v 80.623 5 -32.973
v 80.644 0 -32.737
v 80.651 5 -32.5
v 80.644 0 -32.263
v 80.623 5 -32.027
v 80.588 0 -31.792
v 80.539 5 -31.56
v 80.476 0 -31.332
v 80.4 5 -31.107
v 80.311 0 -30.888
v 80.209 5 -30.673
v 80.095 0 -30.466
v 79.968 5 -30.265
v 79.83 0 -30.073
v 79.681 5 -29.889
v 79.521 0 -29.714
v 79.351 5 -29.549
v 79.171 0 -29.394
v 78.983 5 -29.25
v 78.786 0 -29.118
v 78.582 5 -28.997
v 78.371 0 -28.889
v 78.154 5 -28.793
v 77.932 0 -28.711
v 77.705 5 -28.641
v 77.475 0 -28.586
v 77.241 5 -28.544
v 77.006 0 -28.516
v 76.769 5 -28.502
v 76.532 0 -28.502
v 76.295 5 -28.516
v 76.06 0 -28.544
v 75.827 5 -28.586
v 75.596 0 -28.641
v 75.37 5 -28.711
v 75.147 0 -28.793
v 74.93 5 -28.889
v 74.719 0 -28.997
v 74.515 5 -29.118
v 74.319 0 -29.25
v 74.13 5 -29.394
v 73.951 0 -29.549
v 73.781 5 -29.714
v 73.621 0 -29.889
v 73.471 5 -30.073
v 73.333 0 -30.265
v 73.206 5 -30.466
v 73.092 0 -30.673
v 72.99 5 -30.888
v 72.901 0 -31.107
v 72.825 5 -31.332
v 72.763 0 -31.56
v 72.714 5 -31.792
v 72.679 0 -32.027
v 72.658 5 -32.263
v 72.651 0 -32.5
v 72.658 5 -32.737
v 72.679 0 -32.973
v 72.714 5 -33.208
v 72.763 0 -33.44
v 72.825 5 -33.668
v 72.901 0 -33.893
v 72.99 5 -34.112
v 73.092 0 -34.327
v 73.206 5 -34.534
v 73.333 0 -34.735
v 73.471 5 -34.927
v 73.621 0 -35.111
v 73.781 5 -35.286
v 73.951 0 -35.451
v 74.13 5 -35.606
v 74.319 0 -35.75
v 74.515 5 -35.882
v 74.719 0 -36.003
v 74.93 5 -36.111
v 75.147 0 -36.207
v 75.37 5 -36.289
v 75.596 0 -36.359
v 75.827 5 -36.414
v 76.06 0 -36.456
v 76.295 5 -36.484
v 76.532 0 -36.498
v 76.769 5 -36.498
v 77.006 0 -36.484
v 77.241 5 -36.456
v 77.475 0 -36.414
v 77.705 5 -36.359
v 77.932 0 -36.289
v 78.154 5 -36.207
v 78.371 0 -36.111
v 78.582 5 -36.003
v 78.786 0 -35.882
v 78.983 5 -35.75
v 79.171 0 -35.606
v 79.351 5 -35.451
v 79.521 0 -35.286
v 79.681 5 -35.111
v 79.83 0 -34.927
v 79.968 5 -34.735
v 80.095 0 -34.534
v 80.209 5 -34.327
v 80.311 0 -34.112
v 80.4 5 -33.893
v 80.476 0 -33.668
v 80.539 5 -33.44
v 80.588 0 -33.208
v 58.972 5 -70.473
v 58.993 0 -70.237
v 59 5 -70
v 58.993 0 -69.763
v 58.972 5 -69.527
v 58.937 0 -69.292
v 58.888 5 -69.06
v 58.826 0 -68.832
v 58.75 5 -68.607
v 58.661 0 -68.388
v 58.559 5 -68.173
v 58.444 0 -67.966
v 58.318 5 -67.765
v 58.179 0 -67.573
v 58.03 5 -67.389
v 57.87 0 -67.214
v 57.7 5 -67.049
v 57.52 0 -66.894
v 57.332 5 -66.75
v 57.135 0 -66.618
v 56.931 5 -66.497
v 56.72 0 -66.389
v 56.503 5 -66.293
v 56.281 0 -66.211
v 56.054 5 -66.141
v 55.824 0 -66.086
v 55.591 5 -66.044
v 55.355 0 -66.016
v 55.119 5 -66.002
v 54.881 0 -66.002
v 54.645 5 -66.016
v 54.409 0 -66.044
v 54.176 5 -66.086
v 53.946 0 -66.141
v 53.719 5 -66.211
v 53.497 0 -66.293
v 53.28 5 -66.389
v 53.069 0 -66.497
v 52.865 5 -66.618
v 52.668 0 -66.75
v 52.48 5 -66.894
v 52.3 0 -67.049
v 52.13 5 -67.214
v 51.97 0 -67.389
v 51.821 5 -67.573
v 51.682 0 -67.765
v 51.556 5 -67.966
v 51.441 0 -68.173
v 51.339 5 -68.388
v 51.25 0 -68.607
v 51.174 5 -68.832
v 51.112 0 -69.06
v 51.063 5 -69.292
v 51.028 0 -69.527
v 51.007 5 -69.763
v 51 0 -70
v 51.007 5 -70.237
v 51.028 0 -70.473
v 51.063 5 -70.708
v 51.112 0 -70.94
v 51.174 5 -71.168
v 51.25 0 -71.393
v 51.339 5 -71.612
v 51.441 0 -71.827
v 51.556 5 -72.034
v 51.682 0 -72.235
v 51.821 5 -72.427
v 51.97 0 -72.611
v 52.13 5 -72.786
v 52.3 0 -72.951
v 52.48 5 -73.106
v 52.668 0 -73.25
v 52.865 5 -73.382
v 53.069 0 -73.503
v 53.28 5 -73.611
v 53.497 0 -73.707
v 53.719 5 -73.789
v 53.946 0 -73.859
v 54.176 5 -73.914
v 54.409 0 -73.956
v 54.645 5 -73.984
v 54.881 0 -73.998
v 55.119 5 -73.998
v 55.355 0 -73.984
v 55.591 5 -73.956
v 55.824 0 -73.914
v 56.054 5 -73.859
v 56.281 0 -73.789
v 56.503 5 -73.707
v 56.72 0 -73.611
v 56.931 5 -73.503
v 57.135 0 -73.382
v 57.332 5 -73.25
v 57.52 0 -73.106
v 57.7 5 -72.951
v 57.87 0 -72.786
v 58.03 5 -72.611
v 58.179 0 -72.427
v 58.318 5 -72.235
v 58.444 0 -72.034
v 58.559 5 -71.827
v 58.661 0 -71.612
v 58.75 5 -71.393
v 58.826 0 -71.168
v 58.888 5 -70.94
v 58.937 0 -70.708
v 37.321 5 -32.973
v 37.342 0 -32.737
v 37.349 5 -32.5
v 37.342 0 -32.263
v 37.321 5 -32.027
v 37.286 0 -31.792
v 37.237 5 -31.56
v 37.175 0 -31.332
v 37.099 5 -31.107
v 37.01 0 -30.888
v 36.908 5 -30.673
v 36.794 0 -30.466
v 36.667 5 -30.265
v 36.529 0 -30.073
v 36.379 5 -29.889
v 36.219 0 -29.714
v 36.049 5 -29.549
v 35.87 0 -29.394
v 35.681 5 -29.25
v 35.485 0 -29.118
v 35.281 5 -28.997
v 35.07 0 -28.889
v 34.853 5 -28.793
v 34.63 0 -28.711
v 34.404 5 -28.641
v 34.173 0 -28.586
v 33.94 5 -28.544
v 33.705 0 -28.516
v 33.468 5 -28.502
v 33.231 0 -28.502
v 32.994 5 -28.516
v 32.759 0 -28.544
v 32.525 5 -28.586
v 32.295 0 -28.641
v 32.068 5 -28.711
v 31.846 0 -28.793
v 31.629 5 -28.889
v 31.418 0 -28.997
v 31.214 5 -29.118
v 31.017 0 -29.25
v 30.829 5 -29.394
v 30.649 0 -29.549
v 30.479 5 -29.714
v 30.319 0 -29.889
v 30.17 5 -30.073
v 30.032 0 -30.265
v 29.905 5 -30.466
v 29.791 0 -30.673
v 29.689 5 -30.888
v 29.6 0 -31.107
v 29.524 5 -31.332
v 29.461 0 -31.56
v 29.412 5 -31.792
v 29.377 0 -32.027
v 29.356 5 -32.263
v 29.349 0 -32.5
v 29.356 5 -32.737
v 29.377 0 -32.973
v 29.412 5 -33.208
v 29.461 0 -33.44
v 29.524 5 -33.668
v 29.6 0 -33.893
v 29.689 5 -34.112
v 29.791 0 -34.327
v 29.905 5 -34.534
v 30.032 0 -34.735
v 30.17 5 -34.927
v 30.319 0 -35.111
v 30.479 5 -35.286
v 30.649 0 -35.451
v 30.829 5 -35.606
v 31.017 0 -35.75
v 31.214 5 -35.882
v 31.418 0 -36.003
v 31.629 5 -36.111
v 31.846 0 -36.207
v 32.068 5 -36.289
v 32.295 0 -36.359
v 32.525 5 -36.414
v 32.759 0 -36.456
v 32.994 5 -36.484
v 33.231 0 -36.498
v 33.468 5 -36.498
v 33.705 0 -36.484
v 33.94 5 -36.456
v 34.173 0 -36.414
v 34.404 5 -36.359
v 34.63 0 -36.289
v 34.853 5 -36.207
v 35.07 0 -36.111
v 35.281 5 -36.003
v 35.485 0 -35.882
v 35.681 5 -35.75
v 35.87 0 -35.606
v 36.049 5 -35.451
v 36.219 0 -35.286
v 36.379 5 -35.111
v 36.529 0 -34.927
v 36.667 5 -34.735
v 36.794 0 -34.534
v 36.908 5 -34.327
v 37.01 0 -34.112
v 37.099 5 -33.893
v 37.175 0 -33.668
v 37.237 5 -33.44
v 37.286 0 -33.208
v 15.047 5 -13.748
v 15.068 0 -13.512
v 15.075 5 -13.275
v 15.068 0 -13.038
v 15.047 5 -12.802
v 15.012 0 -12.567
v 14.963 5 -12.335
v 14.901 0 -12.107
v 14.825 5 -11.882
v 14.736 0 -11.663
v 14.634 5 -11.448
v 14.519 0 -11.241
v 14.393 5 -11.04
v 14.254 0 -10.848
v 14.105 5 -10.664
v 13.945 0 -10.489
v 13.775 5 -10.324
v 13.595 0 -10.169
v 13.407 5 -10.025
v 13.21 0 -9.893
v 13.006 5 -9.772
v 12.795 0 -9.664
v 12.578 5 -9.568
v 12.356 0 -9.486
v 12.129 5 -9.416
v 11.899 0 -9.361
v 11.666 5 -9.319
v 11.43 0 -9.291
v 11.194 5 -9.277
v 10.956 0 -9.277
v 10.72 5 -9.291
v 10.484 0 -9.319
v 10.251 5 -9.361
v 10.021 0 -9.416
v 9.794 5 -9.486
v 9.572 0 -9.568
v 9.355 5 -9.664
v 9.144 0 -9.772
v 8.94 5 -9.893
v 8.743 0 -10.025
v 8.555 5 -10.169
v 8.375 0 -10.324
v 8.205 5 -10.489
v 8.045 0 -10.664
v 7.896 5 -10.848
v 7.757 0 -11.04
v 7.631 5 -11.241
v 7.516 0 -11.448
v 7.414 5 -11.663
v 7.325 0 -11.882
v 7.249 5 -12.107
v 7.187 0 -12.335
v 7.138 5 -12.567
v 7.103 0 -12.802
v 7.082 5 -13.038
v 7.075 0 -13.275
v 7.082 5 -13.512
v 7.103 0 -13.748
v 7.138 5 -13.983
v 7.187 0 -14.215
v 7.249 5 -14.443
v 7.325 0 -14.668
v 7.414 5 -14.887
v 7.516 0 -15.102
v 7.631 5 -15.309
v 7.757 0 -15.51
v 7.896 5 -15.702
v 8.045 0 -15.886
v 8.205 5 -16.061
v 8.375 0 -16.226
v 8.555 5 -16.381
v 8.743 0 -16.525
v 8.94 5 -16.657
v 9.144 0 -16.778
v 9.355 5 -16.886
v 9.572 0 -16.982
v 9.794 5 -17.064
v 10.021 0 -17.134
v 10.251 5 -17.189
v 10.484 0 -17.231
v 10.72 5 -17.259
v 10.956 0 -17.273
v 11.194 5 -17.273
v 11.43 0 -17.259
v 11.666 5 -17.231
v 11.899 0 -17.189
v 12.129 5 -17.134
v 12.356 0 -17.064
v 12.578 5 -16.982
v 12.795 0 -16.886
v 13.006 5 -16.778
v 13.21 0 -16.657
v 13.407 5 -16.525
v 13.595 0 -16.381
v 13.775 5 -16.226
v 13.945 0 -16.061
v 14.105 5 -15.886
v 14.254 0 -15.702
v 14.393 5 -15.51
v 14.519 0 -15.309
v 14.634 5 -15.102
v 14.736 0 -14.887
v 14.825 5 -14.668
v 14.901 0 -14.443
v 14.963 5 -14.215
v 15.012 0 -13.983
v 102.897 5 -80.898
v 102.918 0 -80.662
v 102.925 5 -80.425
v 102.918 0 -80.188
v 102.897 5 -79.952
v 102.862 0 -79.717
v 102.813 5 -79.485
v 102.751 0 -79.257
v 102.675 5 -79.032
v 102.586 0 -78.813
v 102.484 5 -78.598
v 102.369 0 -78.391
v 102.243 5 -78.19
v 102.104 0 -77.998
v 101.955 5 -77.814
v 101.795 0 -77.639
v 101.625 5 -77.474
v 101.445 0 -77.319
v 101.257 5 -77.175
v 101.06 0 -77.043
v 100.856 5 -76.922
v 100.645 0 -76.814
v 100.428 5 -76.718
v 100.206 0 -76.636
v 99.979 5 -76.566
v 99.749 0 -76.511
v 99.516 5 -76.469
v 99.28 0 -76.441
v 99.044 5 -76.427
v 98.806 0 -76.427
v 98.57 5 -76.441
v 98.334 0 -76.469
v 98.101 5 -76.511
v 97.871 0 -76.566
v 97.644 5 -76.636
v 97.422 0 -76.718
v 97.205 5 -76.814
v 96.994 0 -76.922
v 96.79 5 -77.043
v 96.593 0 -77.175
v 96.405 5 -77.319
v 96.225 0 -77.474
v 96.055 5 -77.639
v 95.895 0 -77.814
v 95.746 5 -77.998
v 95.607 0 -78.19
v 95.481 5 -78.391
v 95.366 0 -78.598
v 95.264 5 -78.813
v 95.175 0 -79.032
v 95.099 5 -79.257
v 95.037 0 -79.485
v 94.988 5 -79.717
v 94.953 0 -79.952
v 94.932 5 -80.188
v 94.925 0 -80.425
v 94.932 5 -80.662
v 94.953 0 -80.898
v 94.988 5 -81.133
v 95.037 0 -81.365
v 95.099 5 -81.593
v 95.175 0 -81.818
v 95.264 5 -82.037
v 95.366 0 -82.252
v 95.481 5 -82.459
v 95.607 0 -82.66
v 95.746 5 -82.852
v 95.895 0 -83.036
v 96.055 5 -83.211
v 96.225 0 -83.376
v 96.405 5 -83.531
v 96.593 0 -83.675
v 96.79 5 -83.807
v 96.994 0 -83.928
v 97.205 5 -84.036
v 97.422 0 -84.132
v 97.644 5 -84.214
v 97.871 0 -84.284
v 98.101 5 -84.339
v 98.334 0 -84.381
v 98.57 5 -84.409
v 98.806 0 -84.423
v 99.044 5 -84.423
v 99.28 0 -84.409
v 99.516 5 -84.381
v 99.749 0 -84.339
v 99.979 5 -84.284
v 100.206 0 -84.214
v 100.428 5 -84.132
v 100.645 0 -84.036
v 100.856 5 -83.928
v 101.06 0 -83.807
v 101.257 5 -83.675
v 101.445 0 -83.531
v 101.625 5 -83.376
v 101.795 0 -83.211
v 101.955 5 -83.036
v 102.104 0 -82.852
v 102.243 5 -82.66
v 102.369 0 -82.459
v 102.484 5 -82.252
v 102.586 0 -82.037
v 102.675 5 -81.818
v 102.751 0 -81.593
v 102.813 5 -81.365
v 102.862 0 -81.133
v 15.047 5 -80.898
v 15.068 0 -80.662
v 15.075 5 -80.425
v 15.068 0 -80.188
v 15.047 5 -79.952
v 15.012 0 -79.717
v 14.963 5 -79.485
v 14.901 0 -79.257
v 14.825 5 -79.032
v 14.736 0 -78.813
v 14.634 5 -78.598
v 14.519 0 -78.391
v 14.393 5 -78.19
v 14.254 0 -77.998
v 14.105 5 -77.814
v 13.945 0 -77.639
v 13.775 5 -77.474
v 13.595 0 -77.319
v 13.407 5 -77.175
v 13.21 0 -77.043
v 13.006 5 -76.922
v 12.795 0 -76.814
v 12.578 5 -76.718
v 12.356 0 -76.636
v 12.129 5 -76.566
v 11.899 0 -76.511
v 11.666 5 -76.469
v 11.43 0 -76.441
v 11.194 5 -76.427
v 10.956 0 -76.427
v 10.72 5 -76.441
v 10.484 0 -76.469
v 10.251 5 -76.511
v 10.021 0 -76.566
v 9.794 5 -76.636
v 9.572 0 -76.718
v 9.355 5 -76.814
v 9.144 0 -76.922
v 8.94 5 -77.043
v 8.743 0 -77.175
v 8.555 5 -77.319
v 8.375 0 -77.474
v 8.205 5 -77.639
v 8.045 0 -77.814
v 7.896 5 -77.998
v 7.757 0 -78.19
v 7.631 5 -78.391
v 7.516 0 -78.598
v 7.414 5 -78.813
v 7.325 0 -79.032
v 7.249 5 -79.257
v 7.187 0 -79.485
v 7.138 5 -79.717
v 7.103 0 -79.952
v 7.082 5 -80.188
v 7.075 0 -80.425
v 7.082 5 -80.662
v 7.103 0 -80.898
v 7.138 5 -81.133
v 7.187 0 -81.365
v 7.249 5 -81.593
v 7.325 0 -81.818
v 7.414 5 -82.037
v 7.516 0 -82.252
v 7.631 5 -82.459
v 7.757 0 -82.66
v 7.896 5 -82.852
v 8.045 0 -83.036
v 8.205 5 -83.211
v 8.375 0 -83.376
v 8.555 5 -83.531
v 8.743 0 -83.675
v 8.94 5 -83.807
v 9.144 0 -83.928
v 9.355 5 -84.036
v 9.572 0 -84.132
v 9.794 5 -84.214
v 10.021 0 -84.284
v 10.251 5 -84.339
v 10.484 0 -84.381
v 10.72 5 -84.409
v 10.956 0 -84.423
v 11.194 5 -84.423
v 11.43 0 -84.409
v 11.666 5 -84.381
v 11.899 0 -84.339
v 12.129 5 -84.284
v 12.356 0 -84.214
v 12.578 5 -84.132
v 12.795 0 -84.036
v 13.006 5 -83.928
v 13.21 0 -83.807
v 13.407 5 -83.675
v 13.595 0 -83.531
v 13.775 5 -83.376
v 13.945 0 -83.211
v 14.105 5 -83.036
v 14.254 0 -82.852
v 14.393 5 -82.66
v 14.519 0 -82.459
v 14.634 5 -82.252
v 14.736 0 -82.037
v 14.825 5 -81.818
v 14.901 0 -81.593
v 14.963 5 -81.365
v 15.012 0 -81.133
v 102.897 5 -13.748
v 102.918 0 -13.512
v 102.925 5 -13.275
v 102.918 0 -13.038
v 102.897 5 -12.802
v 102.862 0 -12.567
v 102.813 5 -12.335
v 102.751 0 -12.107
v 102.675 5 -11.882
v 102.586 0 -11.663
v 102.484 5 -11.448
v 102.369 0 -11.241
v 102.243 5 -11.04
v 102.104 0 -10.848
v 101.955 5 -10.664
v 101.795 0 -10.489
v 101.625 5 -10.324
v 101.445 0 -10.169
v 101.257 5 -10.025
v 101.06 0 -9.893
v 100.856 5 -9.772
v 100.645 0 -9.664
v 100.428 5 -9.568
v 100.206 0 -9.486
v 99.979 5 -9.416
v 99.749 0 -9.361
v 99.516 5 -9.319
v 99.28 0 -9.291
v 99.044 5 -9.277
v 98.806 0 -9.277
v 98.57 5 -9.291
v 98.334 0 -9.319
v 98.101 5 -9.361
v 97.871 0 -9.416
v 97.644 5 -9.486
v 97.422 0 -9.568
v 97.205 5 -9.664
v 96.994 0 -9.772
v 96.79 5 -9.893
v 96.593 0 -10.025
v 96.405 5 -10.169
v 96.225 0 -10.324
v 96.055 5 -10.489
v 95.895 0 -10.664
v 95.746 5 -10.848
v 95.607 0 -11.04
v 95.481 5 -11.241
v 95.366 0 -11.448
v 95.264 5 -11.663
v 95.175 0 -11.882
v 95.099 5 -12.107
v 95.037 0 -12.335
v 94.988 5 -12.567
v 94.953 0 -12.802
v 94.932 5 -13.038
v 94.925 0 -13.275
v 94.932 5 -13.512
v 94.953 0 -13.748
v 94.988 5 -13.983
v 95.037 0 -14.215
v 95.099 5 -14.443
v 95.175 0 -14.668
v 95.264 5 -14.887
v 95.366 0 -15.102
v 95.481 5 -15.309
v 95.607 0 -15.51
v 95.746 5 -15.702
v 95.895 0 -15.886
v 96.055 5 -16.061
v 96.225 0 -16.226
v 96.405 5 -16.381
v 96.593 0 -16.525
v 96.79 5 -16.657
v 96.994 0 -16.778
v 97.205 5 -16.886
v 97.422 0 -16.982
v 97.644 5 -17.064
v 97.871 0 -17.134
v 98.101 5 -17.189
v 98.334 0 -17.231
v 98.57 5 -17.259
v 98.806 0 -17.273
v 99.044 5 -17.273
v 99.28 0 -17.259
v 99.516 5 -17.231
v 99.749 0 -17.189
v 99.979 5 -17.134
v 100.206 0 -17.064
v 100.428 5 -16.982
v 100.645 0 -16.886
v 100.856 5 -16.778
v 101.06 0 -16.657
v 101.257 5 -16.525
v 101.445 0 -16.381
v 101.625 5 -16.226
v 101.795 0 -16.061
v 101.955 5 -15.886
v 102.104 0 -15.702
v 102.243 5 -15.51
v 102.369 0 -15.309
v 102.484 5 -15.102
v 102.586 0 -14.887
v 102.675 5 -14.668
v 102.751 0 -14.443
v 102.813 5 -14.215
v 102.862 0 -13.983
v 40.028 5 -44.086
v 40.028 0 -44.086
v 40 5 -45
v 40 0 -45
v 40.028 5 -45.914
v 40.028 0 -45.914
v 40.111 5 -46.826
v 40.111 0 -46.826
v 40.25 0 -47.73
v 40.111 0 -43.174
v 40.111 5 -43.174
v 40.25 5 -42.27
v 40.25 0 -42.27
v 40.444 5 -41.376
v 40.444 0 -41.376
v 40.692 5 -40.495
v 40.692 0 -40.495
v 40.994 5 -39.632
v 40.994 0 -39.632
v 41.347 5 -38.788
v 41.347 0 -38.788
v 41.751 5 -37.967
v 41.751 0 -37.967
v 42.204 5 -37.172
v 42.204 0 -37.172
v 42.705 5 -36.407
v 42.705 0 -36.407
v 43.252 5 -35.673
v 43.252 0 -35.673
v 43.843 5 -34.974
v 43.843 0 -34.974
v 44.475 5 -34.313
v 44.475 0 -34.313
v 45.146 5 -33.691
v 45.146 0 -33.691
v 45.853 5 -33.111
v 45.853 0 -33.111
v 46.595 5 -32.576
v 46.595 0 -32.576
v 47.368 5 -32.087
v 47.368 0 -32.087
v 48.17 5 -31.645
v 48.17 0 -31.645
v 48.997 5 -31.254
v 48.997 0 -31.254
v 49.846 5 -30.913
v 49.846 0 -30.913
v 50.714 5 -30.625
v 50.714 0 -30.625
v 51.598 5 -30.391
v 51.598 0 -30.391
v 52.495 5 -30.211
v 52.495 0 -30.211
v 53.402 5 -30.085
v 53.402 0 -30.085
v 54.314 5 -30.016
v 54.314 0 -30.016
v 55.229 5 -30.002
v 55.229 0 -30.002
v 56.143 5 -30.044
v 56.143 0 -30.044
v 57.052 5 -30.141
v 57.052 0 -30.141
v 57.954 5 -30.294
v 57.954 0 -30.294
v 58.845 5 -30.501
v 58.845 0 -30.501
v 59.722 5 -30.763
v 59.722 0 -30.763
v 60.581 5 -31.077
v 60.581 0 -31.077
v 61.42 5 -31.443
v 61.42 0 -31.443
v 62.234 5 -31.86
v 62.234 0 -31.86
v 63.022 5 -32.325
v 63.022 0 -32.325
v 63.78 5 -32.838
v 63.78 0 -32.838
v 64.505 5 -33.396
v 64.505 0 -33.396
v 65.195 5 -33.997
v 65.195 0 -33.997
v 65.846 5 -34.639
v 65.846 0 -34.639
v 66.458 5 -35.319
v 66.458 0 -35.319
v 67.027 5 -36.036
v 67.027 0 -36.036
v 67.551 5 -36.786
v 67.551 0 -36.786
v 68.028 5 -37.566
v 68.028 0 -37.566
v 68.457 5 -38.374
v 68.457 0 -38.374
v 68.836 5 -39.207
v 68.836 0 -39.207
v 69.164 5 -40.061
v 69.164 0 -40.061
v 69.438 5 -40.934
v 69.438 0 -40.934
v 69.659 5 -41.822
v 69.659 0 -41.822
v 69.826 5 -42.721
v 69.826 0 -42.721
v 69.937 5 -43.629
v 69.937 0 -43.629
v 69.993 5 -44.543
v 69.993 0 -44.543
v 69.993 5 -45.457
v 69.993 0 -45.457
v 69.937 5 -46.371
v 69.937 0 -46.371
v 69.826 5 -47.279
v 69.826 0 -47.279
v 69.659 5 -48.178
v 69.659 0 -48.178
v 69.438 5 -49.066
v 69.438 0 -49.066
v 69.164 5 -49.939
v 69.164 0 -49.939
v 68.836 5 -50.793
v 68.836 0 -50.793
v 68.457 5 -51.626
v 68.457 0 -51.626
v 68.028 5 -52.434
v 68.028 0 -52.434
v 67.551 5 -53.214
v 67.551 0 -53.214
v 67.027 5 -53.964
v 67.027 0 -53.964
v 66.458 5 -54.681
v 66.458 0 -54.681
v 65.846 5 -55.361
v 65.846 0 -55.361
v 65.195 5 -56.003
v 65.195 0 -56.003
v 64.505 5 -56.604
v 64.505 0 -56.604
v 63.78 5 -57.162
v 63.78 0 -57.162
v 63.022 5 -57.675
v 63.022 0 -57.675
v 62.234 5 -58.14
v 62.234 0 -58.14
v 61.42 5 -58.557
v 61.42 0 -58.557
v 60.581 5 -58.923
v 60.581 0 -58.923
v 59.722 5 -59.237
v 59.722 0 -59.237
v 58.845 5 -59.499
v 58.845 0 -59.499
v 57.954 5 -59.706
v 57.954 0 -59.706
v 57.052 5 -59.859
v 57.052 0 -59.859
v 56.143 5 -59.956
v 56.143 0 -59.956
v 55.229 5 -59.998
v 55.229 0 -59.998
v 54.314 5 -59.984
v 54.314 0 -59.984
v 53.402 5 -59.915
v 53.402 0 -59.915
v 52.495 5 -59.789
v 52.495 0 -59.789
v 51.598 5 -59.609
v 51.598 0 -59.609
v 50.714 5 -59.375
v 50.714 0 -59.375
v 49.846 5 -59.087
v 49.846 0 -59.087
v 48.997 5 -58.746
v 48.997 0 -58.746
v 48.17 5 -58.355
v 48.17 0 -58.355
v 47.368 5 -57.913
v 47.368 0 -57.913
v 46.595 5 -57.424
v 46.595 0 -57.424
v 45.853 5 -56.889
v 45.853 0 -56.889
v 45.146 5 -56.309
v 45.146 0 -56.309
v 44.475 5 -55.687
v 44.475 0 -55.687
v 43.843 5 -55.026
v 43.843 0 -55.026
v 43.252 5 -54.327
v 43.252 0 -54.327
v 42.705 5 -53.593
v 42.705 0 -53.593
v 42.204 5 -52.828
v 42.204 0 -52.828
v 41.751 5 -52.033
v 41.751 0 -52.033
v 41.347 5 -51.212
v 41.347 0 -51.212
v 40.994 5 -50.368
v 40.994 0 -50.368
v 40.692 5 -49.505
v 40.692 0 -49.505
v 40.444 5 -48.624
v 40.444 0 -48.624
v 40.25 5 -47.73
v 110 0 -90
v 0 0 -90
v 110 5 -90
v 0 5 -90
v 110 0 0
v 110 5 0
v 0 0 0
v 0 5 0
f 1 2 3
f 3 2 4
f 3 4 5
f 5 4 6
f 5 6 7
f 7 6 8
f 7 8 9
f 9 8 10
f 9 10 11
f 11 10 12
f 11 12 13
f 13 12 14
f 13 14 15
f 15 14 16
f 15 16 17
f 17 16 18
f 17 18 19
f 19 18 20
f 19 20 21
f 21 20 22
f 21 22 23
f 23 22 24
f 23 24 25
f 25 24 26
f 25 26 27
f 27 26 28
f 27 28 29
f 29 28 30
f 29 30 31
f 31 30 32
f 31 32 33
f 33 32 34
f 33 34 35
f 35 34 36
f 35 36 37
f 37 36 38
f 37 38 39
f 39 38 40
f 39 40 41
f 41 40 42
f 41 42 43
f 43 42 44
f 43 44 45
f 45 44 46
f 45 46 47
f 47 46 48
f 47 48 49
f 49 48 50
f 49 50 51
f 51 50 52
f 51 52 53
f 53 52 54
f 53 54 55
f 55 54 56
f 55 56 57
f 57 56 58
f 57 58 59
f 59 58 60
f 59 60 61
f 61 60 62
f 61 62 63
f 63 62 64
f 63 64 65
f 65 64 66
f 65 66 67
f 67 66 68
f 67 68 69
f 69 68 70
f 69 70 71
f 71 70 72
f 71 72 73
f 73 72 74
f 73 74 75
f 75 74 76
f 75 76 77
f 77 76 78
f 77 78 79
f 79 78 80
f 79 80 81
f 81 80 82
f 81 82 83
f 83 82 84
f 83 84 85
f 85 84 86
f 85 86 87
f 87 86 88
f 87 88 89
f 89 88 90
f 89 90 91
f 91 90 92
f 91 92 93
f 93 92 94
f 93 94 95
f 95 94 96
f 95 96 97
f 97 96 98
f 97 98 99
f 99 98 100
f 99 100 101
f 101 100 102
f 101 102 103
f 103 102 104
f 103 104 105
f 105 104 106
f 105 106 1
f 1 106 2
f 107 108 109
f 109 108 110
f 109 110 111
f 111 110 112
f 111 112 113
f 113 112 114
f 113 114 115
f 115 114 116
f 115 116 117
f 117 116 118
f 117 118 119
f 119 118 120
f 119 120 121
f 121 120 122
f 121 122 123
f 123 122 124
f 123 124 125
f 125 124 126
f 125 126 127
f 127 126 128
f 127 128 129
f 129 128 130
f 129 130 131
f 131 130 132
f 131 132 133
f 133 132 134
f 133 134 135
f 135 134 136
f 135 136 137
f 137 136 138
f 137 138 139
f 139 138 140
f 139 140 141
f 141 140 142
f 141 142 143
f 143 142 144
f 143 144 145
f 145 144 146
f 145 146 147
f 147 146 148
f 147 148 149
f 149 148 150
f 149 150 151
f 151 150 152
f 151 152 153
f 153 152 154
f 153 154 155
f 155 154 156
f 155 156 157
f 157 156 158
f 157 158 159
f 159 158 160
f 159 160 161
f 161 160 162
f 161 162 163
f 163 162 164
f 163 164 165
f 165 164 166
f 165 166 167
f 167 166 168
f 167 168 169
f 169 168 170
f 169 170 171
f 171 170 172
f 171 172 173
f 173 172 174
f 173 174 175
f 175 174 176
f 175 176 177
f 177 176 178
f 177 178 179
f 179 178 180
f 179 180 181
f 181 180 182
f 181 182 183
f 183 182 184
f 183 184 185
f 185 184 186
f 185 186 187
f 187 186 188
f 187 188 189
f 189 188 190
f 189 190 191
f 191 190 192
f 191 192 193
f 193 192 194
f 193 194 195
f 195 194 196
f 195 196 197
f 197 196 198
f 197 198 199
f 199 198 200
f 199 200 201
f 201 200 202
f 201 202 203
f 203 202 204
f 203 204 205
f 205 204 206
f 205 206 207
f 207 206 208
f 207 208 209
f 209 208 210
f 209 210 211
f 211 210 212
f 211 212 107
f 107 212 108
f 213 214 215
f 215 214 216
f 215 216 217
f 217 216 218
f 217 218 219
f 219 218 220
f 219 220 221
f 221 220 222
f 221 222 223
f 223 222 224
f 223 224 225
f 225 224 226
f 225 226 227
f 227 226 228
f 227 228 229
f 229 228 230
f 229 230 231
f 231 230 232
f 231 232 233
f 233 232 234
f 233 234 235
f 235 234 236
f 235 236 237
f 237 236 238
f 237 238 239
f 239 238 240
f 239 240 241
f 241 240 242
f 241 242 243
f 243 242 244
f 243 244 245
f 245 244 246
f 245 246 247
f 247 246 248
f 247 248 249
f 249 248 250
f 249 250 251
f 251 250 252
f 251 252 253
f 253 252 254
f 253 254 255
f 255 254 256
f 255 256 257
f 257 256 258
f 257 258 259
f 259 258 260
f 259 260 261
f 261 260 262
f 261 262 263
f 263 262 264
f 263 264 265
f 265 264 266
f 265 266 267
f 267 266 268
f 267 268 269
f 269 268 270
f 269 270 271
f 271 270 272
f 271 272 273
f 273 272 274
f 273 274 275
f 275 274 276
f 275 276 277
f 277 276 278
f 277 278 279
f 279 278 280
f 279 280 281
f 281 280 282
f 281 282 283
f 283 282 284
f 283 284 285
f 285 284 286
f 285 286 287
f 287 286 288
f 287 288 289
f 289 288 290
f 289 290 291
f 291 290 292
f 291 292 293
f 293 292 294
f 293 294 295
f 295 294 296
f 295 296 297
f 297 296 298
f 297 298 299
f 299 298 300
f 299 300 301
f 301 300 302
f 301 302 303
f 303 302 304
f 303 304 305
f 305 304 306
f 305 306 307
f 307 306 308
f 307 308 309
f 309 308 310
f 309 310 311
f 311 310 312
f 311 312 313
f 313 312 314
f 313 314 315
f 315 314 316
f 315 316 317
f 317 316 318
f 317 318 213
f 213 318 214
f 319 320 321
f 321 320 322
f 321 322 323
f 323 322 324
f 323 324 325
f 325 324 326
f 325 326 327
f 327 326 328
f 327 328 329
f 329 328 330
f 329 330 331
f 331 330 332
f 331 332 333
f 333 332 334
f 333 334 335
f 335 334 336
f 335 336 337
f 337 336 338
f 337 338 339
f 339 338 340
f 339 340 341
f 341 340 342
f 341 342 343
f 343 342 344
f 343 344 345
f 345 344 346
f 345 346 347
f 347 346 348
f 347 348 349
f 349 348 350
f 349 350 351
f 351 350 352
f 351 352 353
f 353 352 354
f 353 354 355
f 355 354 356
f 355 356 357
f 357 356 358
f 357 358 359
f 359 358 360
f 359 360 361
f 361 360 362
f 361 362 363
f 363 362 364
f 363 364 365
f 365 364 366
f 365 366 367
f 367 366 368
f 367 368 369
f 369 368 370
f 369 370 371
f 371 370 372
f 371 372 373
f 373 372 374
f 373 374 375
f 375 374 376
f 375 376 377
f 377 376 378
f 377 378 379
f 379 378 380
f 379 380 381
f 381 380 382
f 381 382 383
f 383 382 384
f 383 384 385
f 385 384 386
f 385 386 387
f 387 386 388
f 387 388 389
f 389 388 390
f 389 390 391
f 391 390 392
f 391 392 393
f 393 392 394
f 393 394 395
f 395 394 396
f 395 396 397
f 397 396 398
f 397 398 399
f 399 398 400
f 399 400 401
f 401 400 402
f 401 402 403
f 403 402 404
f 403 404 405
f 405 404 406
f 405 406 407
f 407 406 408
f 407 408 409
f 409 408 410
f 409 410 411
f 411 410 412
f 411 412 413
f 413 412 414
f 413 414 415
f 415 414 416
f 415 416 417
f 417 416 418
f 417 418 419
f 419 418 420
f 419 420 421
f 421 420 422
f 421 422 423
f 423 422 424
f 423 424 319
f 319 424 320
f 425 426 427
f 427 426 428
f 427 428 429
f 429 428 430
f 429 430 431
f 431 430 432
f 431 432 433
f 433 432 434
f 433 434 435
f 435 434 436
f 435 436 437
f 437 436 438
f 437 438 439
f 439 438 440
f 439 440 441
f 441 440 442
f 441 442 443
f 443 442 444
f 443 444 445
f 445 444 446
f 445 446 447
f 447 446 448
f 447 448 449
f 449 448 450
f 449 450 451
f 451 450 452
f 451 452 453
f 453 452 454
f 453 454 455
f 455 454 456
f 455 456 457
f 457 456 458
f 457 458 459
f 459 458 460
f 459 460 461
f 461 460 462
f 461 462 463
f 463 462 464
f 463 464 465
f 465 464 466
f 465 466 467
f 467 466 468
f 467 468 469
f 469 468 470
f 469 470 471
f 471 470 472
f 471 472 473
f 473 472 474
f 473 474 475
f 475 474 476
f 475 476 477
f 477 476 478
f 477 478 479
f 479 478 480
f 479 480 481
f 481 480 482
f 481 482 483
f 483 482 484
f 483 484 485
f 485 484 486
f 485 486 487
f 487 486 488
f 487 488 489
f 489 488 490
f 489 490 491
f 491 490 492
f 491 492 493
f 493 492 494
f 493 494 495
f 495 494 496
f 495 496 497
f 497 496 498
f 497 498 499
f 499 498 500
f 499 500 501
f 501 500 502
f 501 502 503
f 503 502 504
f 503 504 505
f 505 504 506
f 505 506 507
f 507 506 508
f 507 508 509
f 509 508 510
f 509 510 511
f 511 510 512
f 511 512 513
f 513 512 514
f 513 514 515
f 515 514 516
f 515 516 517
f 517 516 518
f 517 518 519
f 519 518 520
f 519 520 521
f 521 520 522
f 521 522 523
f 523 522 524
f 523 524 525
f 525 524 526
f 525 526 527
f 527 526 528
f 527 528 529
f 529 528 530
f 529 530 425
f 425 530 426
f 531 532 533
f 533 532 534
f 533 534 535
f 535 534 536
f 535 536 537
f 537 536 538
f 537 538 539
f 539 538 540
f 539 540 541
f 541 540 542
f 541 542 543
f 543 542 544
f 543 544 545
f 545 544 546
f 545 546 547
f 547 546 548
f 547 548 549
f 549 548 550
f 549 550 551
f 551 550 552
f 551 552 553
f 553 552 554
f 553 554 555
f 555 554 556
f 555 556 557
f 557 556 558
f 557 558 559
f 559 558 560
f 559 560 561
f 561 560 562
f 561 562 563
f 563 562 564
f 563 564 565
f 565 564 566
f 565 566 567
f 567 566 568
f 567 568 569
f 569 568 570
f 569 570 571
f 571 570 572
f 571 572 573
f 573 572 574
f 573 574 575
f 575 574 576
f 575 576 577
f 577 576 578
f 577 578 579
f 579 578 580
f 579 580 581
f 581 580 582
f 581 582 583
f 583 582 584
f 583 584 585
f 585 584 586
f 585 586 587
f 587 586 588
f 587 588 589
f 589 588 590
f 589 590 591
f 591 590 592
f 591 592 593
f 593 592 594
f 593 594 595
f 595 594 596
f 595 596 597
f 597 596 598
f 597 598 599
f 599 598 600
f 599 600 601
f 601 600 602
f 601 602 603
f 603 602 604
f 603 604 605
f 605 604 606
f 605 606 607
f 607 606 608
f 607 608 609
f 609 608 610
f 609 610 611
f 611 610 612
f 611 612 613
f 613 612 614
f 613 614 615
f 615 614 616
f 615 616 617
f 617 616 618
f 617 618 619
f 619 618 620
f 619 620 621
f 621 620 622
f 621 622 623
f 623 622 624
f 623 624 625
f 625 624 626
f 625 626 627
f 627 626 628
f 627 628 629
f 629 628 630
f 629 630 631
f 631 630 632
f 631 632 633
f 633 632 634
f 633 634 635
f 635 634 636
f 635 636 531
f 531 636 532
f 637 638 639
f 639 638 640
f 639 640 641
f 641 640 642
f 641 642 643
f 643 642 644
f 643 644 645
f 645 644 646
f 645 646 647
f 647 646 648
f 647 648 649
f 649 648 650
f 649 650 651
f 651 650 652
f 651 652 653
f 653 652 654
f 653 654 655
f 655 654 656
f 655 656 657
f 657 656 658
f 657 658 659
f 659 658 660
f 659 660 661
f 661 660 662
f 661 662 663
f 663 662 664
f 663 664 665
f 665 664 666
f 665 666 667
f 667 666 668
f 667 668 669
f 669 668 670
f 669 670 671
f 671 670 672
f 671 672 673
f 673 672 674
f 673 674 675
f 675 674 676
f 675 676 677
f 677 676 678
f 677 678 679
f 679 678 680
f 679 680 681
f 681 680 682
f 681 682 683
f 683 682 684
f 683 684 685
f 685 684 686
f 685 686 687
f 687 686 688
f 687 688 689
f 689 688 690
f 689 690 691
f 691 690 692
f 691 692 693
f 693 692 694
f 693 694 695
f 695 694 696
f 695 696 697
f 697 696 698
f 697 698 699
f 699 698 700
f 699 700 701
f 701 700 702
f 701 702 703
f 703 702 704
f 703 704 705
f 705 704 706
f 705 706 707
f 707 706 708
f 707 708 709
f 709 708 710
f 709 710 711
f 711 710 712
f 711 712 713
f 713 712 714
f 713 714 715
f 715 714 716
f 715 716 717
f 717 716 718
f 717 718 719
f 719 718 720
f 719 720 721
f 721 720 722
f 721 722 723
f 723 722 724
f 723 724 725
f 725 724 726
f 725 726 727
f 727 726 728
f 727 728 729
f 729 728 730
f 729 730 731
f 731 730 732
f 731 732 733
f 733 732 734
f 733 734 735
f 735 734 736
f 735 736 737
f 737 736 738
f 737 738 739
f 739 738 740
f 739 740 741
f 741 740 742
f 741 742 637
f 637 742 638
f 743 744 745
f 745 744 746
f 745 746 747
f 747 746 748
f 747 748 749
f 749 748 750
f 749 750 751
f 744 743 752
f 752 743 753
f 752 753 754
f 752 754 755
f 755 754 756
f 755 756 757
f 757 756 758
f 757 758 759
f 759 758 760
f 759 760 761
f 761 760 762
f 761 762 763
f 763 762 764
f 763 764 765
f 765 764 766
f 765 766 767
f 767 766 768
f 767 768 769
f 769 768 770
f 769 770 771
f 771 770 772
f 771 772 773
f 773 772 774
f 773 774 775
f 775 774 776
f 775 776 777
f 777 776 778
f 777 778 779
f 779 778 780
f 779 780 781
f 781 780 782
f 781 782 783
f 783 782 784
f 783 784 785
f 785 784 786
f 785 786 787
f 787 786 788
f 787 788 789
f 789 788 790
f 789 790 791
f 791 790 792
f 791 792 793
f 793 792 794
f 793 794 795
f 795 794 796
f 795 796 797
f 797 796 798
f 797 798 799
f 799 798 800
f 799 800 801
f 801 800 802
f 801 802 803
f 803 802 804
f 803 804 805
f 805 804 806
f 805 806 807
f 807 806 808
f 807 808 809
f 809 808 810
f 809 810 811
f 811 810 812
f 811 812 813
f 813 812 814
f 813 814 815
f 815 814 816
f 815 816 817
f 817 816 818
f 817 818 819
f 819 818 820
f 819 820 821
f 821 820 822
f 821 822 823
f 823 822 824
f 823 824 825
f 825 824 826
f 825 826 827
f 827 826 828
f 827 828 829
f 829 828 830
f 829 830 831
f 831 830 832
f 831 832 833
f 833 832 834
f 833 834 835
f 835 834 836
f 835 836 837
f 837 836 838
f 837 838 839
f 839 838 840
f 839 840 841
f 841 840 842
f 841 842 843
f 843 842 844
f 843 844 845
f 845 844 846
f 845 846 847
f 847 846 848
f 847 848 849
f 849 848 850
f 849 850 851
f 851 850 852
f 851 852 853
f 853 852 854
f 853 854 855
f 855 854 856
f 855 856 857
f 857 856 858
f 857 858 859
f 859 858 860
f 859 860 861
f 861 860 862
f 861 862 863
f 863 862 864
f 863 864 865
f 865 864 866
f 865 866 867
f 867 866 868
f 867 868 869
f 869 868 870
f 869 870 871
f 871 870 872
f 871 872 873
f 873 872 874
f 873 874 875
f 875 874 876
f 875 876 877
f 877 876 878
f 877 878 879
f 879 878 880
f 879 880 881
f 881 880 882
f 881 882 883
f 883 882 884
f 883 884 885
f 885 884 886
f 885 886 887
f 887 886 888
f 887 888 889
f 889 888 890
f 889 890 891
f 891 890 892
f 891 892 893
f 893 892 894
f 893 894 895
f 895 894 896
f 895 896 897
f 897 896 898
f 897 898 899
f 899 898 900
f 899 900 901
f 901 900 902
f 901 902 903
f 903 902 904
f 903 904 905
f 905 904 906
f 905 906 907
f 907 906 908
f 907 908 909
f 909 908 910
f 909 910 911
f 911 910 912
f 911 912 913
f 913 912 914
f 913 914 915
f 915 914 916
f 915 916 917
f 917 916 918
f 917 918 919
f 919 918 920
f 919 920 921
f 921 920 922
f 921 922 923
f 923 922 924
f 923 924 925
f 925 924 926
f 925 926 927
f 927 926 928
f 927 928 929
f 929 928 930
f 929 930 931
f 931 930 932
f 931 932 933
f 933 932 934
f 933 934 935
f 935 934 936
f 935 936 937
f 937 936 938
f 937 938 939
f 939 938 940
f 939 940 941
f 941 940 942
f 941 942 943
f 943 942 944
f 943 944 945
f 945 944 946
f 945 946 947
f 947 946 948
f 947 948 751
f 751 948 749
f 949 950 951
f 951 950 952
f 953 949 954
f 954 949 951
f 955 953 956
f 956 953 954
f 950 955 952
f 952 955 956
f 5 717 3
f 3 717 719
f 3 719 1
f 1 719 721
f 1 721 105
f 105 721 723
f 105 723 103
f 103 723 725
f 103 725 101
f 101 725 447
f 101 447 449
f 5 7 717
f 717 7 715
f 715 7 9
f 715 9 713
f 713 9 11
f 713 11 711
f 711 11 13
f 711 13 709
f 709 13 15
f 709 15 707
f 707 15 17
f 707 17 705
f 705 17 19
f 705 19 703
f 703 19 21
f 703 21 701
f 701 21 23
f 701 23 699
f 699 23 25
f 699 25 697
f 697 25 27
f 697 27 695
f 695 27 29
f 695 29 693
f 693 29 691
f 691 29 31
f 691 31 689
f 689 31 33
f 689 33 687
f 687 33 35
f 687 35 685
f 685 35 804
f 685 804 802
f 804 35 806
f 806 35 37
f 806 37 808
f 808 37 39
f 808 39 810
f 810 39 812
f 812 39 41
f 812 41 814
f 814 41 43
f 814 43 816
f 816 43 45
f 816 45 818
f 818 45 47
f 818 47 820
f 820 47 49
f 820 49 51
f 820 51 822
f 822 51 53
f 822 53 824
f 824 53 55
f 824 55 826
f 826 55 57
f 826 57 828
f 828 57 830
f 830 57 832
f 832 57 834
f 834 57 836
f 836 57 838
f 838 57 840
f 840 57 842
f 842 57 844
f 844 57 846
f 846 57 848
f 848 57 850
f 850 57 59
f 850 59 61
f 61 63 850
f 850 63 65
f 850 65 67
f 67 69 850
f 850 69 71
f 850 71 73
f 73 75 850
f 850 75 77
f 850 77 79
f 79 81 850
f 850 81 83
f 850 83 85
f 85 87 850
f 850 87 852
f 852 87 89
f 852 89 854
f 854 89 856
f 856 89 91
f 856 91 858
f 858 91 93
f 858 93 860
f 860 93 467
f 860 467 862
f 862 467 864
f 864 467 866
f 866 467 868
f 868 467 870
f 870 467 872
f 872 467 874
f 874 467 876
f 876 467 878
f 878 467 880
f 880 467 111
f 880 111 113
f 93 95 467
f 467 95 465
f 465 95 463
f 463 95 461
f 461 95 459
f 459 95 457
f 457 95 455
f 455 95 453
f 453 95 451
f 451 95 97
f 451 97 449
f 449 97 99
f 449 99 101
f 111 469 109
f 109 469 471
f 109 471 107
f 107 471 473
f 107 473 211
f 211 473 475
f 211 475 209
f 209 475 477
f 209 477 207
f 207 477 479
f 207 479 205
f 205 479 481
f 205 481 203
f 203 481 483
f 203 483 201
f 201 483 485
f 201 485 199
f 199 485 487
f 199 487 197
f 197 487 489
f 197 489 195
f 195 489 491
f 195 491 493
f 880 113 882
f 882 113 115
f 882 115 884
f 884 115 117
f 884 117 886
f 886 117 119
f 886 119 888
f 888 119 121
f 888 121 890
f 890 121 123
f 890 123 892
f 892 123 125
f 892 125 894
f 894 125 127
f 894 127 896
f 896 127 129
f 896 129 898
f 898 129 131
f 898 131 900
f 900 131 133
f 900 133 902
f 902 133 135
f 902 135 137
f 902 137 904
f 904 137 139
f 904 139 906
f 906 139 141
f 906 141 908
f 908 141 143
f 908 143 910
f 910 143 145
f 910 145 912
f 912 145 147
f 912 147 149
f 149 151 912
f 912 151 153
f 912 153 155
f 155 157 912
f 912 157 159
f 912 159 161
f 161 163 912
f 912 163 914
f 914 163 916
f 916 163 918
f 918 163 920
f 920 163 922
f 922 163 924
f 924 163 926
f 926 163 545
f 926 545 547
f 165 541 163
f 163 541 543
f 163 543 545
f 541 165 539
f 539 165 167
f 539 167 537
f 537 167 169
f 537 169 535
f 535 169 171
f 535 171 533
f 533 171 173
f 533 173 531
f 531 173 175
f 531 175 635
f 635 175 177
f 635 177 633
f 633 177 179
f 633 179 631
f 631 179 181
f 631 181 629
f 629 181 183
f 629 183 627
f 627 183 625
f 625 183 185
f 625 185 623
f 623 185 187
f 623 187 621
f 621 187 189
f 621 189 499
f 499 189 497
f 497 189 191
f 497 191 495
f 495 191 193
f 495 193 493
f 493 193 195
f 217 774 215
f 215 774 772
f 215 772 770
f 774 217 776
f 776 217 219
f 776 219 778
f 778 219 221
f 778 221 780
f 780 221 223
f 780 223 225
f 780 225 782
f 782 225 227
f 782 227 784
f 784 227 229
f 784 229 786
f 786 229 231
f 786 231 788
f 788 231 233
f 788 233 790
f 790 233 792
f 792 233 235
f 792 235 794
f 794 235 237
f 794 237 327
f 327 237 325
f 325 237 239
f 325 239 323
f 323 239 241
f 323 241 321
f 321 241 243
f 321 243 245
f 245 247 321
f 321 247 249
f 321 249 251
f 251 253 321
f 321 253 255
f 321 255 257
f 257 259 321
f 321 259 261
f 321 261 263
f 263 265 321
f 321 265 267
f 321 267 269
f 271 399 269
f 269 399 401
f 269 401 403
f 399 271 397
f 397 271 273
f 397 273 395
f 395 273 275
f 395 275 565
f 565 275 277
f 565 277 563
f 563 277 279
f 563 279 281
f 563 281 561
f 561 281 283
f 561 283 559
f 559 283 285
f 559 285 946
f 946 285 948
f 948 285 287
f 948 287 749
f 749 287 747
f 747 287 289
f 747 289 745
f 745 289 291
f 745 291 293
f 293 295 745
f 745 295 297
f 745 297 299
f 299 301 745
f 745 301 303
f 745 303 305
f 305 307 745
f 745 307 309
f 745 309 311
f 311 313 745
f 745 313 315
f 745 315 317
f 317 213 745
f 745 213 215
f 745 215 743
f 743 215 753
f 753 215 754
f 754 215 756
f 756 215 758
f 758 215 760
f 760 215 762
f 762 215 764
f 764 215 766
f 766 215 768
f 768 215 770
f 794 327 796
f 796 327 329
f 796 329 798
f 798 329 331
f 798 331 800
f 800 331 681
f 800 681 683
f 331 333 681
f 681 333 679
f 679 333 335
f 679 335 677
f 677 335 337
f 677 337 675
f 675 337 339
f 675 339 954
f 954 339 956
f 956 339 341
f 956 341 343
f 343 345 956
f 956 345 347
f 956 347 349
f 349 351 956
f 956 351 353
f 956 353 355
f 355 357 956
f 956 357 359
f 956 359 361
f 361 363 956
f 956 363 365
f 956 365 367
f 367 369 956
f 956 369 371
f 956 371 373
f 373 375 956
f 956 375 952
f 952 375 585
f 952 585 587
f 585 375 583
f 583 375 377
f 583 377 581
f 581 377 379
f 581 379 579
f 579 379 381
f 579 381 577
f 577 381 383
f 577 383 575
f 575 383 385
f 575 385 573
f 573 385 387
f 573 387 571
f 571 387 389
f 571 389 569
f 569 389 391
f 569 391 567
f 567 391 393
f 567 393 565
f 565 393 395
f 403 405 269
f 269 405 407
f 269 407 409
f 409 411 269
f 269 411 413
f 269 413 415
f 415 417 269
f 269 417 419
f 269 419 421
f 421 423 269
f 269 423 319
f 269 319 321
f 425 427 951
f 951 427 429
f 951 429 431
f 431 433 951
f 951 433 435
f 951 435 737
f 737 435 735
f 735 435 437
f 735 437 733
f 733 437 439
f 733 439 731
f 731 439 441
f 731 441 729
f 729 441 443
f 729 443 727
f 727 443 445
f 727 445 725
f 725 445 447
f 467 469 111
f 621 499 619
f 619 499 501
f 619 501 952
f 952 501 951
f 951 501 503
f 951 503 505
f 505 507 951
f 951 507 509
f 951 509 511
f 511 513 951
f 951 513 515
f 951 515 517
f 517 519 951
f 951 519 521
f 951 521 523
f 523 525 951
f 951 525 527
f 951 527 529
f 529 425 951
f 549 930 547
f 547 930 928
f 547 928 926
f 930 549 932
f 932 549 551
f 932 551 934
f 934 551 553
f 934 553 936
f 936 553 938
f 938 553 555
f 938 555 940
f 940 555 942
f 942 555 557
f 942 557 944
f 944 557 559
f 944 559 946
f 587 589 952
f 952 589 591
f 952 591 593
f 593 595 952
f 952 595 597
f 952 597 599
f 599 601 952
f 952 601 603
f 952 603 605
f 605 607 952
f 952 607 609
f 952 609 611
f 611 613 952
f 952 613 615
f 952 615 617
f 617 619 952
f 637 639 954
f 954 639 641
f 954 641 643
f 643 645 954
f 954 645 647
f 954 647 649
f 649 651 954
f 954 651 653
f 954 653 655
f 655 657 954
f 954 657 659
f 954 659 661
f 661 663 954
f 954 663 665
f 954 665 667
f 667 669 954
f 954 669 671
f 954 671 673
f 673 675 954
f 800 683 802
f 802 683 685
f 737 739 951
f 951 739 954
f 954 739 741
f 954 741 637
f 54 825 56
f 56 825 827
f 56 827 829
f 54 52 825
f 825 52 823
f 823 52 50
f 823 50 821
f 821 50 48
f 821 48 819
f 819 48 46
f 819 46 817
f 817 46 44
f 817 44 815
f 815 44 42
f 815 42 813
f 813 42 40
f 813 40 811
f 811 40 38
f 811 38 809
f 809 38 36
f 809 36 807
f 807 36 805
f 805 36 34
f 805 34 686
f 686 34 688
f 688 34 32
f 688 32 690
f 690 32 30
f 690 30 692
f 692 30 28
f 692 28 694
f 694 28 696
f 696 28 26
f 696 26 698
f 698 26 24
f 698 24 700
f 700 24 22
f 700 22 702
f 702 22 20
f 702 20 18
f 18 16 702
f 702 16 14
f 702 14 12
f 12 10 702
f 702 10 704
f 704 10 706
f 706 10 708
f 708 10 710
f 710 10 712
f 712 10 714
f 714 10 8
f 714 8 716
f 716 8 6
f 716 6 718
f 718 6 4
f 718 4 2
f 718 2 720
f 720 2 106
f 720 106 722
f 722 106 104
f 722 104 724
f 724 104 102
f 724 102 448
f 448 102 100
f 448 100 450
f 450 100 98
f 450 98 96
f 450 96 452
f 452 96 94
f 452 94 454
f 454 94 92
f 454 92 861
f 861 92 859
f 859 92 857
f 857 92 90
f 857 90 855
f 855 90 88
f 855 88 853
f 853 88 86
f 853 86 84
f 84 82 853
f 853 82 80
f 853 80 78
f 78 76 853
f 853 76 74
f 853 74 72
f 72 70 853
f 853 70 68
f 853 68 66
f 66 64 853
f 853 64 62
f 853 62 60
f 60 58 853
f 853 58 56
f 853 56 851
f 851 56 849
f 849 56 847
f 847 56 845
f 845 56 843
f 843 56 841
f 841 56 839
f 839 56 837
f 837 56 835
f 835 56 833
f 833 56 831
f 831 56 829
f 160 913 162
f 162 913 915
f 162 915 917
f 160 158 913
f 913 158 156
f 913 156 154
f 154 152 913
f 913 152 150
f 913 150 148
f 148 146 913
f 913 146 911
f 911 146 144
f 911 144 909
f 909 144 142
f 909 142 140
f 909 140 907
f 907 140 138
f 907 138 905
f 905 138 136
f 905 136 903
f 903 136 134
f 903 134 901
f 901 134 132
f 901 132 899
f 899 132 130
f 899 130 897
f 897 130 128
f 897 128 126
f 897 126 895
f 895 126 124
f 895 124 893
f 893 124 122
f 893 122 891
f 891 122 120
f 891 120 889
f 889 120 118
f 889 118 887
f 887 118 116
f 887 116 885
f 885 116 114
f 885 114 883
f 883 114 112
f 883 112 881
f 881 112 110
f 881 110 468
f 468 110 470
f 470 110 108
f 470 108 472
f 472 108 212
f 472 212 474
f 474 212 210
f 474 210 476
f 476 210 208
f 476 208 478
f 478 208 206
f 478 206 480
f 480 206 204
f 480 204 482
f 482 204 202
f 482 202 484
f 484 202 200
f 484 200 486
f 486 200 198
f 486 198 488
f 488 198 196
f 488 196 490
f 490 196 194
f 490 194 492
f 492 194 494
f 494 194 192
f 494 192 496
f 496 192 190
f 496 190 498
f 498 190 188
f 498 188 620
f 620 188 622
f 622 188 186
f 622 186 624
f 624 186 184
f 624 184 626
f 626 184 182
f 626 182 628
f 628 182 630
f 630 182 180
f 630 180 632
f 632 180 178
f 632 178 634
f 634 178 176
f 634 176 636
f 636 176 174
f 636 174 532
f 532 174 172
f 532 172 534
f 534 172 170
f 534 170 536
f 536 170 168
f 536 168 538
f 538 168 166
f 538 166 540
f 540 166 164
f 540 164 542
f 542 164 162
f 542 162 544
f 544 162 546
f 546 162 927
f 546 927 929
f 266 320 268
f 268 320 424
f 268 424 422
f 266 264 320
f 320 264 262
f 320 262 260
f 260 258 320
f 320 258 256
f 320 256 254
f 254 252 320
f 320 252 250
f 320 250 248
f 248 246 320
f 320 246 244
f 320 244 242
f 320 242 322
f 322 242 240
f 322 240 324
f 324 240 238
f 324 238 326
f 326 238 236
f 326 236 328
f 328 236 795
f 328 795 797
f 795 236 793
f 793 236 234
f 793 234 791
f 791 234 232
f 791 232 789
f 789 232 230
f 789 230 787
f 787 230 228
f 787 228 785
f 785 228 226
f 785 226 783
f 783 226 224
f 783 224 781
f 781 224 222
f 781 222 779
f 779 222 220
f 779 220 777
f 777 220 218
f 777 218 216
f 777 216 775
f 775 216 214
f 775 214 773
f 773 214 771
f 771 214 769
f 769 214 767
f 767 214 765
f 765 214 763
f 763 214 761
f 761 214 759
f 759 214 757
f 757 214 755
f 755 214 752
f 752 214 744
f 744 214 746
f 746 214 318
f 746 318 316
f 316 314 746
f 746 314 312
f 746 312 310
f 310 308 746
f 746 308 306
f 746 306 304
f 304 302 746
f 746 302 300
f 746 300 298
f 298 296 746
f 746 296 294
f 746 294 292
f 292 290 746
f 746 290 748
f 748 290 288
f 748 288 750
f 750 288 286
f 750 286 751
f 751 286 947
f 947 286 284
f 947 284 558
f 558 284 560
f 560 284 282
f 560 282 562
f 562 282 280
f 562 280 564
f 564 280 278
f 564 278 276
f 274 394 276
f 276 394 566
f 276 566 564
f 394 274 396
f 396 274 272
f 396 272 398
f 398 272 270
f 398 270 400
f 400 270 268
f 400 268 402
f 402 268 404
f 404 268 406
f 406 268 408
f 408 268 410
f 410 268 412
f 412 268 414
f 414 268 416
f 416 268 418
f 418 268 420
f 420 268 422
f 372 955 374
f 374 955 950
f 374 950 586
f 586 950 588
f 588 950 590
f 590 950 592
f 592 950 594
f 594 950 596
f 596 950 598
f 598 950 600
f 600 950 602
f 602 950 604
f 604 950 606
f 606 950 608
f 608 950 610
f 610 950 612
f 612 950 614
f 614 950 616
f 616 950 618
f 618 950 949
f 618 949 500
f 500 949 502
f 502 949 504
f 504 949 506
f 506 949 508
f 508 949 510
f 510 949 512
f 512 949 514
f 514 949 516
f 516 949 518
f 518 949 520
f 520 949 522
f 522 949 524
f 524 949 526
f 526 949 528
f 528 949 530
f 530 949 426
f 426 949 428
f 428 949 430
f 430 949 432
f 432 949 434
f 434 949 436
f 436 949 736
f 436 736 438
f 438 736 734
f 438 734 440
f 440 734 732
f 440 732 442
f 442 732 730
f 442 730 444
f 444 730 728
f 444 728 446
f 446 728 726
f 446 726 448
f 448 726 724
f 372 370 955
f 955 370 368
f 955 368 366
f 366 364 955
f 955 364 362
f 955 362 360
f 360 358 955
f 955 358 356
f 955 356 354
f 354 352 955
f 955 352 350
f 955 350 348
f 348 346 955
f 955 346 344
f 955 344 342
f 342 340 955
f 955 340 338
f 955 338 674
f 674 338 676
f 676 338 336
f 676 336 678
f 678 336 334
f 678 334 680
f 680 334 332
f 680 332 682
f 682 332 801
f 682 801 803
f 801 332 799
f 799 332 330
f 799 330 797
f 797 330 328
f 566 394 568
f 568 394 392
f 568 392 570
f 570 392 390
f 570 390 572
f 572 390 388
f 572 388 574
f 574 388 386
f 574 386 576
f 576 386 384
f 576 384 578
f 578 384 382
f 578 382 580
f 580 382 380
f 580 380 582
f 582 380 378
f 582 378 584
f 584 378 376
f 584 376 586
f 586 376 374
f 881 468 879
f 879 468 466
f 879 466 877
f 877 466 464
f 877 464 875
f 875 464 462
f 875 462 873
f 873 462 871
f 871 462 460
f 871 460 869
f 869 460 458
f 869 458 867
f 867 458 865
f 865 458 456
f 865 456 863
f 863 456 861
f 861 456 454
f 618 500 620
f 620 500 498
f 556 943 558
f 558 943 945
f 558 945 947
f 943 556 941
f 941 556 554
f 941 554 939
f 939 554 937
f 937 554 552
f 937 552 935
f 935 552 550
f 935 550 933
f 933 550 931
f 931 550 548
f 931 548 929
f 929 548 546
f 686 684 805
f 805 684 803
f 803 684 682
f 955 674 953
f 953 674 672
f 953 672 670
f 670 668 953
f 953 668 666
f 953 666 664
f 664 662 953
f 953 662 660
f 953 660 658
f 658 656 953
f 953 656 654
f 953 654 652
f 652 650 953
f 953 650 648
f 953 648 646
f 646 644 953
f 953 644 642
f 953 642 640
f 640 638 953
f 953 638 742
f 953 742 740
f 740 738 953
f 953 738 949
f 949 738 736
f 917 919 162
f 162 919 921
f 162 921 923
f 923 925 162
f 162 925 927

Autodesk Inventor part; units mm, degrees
ref_plane "YZ Plane" through (0, 0, 0) normal (1, 0, 0) x (0, 1, 0)
ref_plane "XZ Plane" through (0, 0, 0) normal (0, 1, 0) x (-1, 0, 0)
ref_plane "XY Plane" through (0, 0, 0) normal (0, 0, 1) x (1, 0, 0)
sketch "Sketch1" plane through (0, 0, 0) normal (0, 1, 0) x (-1, 0, 0)
  line L0 (0, 0) -> (-110, 0)
  line L1 (-110, 0) -> (-110, -90)
  line L2 (-110, -90) -> (0, -90)
  line L3 (0, -90) -> (0, 0)
  line L4 (0, -90) -> (-11.075, -90)
  line L5 (-11.075, -90) -> (-11.075, 0) construction
  line L6 (-11.075, 0) -> (0, 0)
  line L7 (0, 0) -> (0, -90)
  line L8 (-110, -90) -> (-98.925, -90)
  line L9 (-98.925, -90) -> (-98.925, 0) construction
  line L10 (-98.925, 0) -> (-110, 0)
  line L11 (-110, 0) -> (-110, -90)
  line L12 (-11.075, -90) -> (-11.075, -84)
  circle A0 centre (-11.075, -80.425) radius 3.575
  line L13 (-11.075, -76.85) -> (-11.075, -16.85) construction
  circle A1 centre (-11.075, -13.275) radius 3.575
  line L14 (-98.925, -90) -> (-98.925, -84)
  circle A2 centre (-98.925, -80.425) radius 3.575
  line L15 (-98.925, -76.85) -> (-98.925, -16.85) construction
  circle A3 centre (-98.925, -13.275) radius 3.575
  line L16 (-55, 0) -> (-55, -45)
  circle A4 centre (-55, -45) radius 15
  circle A5 centre (-55, -45) radius 25
  circle A6 centre (-55, -70) radius 3.25
  circle A7 centre (-33.3494, -32.5) radius 3.25
  circle A8 centre (-76.6506, -32.5) radius 3.25
  dimension "d7" = 7.15
  dimension "d11" = 7.15
  dimension "d15" = 50
  dimension "d0" = 90
  dimension "d1" = 110
  dimension "d2" = 11.075
  dimension "d3" = 11.075
  dimension "d4" = 6
  dimension "d5" = 7.15
  dimension "d6" = 60
  dimension "d8" = 6
  dimension "d9" = 7.15
  dimension "d10" = 60
  dimension "d12" = 55
  dimension "d13" = 45
  dimension "d14" = 30
  dimension "d16" = 6.5
  dimension "d19" = 360
  dimension "d37" = 87.85
extrude "Extrusion1" add sketch "Sketch1" along normal blind 5 contours A5 A7 A6 A8 | A2 | A0 | L3 L2 L1 L0 | A7 A5 | A5 A7 | A8 A5 | A5 A8 | A6 A5 | A5 A6 | A1 | A3
hole "Hole1" at (98.925, 0, -80.425) at (11.075, 0, -80.425) at (11.075, 0, -13.275) at (98.925, 0, -13.275) direction (0, 1, 0) diameter 8 depth 10
hole "Hole2" at (55, 0, -70) at (76.6506, 0, -32.5) at (33.3494, 0, -32.5) direction (0, 1, 0) diameter 8 depth 10
properties part number "motorbracket2"
